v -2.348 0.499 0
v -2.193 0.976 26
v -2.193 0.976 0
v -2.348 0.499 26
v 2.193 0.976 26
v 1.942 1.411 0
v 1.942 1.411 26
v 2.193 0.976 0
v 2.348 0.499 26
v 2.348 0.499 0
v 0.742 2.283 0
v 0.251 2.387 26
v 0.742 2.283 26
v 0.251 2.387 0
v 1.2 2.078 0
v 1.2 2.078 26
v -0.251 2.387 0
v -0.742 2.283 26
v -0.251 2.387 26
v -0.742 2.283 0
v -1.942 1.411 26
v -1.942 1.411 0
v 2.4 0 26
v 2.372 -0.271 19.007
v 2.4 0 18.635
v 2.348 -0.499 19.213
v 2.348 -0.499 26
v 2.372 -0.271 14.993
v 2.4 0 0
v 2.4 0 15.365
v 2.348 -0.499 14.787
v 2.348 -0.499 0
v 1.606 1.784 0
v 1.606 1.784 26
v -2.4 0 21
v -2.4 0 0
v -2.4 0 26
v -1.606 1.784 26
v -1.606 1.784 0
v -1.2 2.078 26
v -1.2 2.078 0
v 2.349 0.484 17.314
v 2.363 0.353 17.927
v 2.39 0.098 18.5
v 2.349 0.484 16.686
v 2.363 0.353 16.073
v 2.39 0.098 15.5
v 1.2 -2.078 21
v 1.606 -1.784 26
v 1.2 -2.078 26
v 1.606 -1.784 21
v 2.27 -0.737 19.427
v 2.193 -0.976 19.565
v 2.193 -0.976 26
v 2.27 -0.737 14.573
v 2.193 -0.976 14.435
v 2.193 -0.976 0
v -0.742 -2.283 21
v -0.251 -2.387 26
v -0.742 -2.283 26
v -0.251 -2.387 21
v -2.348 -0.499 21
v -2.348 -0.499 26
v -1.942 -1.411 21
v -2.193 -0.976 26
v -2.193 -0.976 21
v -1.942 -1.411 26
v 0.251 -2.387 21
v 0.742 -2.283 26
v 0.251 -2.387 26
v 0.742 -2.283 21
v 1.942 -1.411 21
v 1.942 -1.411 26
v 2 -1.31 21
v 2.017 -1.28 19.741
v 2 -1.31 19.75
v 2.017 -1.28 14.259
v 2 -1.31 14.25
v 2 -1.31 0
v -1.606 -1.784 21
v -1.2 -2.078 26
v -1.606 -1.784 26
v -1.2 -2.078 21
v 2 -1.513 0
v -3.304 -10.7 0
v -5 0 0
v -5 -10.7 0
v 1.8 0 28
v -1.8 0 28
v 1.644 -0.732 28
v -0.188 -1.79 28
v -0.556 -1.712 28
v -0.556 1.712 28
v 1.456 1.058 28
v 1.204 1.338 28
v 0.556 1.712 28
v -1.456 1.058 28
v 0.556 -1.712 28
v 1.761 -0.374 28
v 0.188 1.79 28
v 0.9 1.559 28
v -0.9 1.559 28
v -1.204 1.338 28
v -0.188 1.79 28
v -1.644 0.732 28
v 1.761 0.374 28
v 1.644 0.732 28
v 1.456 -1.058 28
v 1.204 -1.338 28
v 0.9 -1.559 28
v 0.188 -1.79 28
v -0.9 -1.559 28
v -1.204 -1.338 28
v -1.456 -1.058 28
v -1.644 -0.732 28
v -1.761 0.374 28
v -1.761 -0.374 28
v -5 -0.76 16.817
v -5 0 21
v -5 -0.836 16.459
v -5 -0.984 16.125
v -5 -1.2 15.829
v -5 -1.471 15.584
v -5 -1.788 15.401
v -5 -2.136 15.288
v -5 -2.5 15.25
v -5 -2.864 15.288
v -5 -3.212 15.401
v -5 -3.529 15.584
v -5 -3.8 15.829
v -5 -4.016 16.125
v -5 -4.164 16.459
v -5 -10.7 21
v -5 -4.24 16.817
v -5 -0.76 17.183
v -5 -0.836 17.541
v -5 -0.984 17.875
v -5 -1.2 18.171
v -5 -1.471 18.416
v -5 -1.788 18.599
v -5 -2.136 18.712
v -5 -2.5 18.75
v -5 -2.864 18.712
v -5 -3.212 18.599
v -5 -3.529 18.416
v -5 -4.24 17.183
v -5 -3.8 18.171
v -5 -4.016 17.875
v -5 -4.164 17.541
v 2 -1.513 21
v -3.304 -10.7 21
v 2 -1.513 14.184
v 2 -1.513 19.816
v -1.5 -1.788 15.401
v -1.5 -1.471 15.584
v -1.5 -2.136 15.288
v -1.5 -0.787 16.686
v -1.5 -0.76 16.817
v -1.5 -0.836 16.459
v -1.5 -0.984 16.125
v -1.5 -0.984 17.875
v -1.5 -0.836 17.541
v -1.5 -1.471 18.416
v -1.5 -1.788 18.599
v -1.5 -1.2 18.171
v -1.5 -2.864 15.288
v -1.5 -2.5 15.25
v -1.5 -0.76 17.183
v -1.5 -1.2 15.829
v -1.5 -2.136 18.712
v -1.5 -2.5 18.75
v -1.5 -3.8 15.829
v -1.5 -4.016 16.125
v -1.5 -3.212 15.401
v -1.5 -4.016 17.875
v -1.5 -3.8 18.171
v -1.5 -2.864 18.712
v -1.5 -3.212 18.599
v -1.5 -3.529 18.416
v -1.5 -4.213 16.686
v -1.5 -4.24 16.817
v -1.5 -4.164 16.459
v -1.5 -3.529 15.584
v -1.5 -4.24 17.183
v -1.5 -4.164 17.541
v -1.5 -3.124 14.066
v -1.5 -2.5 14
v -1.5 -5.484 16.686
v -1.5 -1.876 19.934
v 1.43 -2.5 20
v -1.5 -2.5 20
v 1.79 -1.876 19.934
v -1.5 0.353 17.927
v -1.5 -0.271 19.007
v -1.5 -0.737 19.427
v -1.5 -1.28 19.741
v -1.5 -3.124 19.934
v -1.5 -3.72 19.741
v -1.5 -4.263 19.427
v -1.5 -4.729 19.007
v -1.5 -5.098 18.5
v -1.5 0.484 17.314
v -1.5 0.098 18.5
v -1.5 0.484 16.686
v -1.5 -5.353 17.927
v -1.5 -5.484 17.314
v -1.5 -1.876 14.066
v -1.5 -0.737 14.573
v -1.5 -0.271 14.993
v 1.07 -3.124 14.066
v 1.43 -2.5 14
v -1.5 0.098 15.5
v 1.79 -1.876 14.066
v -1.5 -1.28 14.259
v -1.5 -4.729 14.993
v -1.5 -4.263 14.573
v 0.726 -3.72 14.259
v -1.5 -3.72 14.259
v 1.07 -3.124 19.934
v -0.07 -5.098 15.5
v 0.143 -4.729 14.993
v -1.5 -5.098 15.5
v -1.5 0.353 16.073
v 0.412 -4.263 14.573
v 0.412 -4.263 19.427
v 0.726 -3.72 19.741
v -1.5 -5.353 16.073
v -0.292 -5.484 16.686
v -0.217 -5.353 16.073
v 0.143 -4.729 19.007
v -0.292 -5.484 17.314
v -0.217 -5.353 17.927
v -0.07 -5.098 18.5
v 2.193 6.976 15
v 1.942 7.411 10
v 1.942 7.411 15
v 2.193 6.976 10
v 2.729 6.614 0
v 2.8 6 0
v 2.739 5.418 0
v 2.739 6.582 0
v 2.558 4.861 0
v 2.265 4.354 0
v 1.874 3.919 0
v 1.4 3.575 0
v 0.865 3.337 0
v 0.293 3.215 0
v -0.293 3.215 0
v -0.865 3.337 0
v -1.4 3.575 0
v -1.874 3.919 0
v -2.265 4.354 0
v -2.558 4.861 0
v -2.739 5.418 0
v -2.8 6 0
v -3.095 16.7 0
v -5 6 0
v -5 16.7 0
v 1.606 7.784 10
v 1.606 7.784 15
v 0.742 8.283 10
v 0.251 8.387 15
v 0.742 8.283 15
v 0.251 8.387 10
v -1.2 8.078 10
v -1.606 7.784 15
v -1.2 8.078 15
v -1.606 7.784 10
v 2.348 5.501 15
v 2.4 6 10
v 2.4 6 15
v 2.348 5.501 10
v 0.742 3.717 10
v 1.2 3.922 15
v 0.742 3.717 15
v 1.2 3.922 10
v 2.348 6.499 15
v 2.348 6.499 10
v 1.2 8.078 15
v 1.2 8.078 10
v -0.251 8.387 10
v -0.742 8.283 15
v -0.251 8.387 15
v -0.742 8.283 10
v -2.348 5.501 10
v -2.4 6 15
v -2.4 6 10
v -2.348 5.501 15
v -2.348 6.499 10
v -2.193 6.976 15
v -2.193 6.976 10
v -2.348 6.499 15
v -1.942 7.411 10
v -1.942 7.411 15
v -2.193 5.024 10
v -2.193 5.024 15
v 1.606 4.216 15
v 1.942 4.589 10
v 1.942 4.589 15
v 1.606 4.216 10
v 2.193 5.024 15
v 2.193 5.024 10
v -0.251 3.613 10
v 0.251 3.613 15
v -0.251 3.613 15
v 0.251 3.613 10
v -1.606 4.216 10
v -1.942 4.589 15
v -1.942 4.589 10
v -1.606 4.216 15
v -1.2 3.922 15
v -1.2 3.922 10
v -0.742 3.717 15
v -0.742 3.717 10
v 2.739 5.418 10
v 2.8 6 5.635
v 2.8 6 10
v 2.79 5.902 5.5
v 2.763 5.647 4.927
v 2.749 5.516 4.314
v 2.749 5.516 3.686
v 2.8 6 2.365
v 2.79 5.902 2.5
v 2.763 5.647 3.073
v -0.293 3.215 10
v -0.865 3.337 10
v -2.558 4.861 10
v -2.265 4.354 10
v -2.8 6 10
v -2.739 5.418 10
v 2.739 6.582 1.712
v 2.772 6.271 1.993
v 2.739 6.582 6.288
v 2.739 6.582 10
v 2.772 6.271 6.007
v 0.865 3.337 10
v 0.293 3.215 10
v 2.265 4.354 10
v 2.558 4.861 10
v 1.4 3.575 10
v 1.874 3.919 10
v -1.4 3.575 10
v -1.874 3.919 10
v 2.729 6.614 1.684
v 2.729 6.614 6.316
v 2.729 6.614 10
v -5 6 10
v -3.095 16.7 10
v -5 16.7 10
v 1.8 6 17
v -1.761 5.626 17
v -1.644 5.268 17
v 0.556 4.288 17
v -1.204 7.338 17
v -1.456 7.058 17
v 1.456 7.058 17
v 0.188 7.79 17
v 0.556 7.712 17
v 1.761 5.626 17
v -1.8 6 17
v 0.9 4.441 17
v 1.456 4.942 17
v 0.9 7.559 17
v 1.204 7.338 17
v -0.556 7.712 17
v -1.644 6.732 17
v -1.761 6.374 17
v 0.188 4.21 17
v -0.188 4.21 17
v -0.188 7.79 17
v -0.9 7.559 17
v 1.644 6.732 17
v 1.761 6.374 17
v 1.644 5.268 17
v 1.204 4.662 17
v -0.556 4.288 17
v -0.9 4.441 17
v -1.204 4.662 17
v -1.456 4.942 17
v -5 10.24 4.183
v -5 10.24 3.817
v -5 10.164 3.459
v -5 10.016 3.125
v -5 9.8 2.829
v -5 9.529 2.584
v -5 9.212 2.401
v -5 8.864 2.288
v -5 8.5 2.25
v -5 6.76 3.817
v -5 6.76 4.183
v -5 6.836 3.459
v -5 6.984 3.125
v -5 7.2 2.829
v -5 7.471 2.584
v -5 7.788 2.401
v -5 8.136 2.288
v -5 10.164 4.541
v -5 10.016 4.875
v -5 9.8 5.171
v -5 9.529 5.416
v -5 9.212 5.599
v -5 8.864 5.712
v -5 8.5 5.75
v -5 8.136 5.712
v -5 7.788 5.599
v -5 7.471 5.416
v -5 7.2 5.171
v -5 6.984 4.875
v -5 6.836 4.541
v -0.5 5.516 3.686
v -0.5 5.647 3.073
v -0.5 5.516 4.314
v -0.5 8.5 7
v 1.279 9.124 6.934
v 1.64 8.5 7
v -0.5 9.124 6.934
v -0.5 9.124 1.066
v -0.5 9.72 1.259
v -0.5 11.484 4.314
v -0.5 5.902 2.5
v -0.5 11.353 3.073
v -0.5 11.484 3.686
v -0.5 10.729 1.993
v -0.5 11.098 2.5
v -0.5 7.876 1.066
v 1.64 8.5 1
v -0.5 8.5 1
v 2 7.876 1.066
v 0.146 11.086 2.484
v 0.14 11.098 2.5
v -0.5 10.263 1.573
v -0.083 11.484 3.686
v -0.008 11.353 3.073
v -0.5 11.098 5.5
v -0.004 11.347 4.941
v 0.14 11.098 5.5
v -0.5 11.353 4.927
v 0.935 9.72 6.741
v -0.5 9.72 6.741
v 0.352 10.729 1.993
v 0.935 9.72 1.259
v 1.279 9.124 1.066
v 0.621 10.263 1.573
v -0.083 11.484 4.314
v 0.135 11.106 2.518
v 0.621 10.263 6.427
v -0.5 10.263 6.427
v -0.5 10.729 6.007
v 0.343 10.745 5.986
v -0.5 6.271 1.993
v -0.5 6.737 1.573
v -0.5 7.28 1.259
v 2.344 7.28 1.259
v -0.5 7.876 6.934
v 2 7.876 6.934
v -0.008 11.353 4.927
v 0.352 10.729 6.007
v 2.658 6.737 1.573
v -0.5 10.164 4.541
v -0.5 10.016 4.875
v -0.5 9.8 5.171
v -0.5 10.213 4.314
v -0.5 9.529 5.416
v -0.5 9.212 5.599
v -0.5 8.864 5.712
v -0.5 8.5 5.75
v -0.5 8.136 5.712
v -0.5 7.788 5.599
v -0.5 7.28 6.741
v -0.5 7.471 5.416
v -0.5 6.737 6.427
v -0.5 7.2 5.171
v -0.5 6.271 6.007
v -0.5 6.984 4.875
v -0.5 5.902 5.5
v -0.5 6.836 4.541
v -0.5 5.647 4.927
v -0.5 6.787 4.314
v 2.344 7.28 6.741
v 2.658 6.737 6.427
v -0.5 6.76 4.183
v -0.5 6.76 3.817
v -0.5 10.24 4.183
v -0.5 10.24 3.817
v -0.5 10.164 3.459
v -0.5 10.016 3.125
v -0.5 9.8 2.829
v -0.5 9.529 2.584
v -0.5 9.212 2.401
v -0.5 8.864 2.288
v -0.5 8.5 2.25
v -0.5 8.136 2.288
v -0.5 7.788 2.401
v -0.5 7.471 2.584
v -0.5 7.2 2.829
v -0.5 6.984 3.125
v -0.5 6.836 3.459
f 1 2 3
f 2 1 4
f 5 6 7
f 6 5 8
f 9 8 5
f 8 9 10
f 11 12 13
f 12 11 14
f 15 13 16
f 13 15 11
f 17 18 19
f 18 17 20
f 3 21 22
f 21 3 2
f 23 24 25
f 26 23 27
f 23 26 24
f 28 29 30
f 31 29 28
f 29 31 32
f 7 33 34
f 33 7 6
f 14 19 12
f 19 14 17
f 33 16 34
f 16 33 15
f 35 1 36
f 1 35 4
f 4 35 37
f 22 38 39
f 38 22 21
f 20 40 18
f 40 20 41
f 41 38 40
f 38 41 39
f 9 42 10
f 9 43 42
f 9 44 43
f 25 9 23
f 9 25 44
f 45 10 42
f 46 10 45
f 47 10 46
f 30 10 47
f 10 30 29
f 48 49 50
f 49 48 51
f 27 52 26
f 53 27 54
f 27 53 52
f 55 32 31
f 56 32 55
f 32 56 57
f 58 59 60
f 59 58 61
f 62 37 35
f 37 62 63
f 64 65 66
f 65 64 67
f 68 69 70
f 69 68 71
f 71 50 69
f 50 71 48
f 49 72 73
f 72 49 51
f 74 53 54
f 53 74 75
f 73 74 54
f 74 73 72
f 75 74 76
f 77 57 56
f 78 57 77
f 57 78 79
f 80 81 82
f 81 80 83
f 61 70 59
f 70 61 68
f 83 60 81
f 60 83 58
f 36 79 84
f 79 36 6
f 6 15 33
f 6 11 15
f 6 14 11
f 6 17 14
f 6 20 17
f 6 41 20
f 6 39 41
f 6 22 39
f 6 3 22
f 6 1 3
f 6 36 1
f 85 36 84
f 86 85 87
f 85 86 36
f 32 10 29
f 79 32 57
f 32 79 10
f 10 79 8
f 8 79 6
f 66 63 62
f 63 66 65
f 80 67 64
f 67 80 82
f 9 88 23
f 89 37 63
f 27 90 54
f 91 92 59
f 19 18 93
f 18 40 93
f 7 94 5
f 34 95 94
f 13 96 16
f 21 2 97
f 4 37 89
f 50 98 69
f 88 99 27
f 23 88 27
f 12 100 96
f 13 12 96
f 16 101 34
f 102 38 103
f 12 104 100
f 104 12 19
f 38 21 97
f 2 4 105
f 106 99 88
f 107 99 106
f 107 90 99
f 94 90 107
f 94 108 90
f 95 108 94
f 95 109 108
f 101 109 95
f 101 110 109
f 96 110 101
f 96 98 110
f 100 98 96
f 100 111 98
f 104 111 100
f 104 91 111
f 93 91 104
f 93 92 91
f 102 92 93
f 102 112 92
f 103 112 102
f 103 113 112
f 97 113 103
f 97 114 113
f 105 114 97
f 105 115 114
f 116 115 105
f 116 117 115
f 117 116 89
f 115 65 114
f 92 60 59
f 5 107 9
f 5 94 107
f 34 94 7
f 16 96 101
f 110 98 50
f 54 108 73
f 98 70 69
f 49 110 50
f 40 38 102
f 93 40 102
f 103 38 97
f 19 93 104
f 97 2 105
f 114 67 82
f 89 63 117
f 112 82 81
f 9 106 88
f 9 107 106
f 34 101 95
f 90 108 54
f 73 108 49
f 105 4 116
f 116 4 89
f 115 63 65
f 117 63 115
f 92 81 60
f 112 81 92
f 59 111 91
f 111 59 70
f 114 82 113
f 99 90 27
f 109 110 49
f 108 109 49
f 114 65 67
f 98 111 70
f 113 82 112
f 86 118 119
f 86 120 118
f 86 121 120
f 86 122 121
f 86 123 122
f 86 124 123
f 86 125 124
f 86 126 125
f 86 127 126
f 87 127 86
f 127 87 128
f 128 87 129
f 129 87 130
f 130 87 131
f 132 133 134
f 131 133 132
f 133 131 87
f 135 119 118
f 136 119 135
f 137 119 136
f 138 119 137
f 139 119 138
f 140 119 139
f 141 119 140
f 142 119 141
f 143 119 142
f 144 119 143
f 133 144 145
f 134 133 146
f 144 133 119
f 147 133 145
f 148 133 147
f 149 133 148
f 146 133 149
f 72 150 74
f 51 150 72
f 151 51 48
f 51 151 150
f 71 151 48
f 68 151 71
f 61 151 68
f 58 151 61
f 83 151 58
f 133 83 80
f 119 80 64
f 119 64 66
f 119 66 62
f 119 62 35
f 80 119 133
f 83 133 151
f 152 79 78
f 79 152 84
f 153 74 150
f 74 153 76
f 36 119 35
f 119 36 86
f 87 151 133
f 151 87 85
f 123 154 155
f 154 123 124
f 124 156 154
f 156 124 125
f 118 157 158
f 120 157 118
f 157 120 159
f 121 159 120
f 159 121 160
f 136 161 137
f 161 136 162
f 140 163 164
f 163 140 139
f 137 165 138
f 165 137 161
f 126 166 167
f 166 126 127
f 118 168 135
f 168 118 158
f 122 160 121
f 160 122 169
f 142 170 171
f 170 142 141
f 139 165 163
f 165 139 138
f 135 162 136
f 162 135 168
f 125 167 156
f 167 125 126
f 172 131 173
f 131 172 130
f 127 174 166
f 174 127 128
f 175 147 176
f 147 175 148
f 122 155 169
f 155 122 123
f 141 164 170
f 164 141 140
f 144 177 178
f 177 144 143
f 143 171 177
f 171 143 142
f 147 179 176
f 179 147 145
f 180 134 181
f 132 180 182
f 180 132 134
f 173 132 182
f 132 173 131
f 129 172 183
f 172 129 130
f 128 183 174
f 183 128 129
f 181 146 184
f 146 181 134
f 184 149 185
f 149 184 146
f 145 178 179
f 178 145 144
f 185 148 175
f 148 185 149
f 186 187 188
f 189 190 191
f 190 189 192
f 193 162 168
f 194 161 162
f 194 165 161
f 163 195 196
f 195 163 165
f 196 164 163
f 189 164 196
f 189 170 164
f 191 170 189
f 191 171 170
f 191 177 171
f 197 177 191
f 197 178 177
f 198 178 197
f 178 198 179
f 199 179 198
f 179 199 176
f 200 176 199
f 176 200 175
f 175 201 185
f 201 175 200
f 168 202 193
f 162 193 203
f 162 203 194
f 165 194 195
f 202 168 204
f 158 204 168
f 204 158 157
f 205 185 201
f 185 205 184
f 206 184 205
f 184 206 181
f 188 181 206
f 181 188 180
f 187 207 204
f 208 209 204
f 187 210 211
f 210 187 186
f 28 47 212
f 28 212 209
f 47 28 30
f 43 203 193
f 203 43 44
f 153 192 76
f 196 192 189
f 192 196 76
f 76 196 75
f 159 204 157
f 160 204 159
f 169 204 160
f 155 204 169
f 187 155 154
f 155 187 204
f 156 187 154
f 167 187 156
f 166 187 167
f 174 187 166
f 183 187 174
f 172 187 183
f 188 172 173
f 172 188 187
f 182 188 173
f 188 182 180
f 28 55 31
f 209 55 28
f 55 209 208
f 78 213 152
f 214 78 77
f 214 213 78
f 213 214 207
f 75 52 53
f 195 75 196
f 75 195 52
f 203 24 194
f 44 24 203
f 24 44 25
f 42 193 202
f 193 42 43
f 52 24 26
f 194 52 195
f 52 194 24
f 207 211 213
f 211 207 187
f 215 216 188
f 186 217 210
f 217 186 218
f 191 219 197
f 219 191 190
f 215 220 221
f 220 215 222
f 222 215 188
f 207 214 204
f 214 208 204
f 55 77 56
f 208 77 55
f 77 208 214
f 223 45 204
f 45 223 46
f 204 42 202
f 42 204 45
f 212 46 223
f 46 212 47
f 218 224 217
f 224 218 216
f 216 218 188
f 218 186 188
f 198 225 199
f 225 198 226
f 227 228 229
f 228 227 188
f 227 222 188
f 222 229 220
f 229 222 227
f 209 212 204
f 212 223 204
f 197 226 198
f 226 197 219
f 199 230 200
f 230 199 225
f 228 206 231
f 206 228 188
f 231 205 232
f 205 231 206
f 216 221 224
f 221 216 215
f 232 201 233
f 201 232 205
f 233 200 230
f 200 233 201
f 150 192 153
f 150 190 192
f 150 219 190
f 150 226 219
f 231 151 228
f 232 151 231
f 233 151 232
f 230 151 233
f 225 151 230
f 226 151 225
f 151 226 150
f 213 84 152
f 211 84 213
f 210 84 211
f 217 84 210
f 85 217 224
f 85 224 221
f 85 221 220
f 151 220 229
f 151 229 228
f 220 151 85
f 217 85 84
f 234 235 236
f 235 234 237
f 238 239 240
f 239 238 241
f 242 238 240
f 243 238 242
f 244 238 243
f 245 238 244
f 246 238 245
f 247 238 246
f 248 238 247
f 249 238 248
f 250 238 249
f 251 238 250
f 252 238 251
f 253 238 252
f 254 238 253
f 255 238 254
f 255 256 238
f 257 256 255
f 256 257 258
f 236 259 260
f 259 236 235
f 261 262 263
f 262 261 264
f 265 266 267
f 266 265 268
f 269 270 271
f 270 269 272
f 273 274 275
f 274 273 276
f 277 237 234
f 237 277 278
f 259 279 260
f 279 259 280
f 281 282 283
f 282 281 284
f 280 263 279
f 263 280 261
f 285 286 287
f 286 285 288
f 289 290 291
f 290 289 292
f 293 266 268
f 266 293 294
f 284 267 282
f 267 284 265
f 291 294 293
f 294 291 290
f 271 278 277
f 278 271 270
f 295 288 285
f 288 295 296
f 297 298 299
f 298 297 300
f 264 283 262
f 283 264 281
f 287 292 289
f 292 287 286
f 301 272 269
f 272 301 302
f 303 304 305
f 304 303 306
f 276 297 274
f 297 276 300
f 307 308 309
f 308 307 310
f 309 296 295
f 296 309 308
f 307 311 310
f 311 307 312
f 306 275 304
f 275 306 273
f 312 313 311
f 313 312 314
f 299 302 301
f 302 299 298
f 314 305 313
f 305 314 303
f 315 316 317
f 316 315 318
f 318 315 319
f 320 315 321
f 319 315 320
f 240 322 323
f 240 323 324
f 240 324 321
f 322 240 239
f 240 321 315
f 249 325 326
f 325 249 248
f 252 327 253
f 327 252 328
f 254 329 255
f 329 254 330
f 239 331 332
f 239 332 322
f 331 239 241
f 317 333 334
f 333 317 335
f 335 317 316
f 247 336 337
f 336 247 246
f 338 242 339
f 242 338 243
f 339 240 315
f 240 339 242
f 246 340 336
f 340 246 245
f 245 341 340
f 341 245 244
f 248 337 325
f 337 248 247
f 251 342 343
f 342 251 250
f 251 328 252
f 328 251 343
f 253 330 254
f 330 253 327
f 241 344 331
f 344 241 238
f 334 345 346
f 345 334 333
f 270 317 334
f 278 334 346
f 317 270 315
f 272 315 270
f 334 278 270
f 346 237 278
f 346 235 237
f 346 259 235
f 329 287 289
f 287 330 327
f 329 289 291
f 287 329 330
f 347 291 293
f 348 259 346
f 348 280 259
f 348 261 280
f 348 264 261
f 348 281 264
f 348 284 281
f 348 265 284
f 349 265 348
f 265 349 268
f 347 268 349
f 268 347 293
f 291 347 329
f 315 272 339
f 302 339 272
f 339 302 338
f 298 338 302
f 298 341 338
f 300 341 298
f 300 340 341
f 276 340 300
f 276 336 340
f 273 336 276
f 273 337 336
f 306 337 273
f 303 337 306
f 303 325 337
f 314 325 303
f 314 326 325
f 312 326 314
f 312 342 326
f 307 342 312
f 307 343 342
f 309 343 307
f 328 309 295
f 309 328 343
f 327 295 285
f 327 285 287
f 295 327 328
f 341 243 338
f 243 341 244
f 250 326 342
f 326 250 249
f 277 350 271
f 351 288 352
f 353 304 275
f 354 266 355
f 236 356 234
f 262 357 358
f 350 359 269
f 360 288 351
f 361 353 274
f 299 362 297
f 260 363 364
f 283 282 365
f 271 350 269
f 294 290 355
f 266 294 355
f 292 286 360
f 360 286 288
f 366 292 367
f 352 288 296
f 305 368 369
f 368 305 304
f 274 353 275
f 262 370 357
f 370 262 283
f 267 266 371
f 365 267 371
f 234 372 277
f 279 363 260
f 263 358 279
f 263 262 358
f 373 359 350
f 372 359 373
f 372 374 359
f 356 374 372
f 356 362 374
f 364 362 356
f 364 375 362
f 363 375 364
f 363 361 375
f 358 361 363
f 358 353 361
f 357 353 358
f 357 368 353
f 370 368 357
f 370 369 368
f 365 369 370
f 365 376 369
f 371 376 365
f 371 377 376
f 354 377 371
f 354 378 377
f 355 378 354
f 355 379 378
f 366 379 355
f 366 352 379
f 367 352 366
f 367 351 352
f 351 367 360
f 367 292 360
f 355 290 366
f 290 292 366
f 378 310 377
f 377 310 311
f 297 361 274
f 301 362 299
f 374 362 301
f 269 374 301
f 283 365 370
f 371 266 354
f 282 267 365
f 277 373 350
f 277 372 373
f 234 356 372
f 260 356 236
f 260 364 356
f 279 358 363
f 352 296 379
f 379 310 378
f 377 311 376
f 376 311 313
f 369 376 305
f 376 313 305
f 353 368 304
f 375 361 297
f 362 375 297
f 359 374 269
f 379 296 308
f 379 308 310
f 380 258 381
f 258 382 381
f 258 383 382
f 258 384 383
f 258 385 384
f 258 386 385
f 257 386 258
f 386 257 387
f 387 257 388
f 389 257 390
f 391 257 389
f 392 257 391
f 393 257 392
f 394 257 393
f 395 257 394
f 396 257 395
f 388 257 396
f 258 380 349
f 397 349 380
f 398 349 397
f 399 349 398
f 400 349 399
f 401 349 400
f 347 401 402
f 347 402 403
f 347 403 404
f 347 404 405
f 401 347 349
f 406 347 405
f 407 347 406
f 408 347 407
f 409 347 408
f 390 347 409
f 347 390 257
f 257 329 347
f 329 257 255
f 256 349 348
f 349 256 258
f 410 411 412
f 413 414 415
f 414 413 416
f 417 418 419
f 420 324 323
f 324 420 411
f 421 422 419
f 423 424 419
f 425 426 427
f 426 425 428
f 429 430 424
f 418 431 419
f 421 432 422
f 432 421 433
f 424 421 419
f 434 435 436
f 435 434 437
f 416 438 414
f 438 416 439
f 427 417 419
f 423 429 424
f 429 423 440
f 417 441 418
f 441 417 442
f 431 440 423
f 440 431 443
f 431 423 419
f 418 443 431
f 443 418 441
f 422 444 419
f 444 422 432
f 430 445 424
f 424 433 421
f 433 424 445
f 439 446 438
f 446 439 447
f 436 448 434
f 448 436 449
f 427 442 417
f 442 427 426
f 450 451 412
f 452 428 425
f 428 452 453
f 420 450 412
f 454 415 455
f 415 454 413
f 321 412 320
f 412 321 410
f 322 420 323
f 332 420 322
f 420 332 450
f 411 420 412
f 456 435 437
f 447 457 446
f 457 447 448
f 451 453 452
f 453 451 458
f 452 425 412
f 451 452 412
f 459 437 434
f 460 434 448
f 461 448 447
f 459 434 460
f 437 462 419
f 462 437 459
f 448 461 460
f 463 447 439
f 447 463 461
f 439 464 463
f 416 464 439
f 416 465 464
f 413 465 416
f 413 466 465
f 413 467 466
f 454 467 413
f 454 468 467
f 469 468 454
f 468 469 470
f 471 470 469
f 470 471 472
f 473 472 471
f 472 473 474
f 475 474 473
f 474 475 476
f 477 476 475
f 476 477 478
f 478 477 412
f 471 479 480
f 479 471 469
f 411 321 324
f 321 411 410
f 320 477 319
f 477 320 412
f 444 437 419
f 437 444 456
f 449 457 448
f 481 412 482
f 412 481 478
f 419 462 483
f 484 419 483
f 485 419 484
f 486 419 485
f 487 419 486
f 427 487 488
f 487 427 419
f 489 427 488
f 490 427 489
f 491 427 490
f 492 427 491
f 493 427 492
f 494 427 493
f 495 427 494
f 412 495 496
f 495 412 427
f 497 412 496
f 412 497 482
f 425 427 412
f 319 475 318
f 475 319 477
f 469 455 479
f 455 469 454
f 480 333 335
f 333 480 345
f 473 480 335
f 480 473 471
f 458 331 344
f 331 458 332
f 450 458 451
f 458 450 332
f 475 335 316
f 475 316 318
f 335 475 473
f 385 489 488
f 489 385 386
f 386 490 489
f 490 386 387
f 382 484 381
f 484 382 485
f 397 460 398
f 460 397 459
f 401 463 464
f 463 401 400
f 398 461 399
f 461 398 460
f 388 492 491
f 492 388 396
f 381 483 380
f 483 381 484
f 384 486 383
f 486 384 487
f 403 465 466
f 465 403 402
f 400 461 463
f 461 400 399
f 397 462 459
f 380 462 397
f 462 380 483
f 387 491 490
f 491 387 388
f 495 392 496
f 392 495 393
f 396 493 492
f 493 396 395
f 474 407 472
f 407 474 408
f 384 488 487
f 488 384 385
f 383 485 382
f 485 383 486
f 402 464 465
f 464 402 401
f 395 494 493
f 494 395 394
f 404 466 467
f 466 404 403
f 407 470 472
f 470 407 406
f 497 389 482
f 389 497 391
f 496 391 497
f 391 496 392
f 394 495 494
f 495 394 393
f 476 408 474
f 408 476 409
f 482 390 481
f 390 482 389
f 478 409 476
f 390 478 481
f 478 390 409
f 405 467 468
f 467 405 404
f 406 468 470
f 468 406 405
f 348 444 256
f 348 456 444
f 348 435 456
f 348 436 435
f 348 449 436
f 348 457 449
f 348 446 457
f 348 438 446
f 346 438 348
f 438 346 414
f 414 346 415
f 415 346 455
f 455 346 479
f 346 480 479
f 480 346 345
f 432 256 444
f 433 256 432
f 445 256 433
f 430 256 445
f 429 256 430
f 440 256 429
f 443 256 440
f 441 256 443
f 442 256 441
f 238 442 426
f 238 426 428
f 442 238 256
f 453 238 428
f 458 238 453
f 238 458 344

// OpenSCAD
// PRUSA iteration4
// Einsy cover hinges
// GNU GPL v3
// Josef Průša <iam@josefprusa.cz> and contributors
// http://www.reprap.org/wiki/Prusa_Mendel
// http://prusamendel.org

module upper_hinge()
{
    difference()
    {
        union()
        {
            // body
            cylinder(h = 26, r = 2.4, $fn = 30);
            translate([0, 0, 26]) cylinder(h = 2, r1 = 2.4, r2 = 1.8, $fn = 30);
            translate([-5, -10.7, 0]) cube([7, 10.7, 21]);
        }
        // M3 screw hole
        translate([-12.5, -2.5, 17]) rotate([0, 90, 0]) cylinder(h = 20, r = 1.75, $fn = 30);
        translate([-1.5, -2.5, 17]) rotate([0, 90, 0]) cylinder(h = 9, r = 3, $fn = 30);
        // angle cut
        translate([-2.9, -20, -1]) rotate([0, 0, 60]) cube([25, 5, 26]);
    }
}

module lower_hinge()
{
    difference()
    {
        union()
        {
            // body
            translate([0, 6, 0]) cylinder(h = 15, r = 2.4, $fn = 30);
            translate([0, 6, 0]) cylinder(h = 10, r = 2.8, $fn = 30);
            translate([0, 6, 15]) cylinder(h = 2, r1 = 2.4, r2 = 1.8, $fn = 30);
            translate([-5, 6, 0]) cube([7, 10.7, 10]);
        }
        // M3 screw
        translate([-0.5, 8.5, 4]) rotate([0, 90, 0]) cylinder(h = 20, r = 3, $fn = 30);
        translate([-12, 8.5, 4]) rotate([0, 90, 0]) cylinder(h = 20, r = 1.75, $fn = 30);
        // angle cut
        translate([-5, 20, -1]) rotate([0, 0, -60]) cube([20, 5, 20]);
    }
}

upper_hinge();
lower_hinge();
